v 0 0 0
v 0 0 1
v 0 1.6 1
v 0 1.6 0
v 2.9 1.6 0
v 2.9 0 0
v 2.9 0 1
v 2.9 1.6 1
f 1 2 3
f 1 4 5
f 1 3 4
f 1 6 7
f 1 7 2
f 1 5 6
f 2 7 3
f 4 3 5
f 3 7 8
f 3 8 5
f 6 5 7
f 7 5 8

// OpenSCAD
/* Warning, this is a very basic generator with a lot of approximation 
input data : [SOT-23, PKX, 2.90x1.60mm, 5, , H, C04-00091H]
generated by com.zoubworld.electronics.cad.model3d.Basic
Date : Sun Feb 15 10:50:48 CET 2026
*/

//body
color("black")
translate([0,0,0])
cube([2.9,1.6,1.0], center=false);
